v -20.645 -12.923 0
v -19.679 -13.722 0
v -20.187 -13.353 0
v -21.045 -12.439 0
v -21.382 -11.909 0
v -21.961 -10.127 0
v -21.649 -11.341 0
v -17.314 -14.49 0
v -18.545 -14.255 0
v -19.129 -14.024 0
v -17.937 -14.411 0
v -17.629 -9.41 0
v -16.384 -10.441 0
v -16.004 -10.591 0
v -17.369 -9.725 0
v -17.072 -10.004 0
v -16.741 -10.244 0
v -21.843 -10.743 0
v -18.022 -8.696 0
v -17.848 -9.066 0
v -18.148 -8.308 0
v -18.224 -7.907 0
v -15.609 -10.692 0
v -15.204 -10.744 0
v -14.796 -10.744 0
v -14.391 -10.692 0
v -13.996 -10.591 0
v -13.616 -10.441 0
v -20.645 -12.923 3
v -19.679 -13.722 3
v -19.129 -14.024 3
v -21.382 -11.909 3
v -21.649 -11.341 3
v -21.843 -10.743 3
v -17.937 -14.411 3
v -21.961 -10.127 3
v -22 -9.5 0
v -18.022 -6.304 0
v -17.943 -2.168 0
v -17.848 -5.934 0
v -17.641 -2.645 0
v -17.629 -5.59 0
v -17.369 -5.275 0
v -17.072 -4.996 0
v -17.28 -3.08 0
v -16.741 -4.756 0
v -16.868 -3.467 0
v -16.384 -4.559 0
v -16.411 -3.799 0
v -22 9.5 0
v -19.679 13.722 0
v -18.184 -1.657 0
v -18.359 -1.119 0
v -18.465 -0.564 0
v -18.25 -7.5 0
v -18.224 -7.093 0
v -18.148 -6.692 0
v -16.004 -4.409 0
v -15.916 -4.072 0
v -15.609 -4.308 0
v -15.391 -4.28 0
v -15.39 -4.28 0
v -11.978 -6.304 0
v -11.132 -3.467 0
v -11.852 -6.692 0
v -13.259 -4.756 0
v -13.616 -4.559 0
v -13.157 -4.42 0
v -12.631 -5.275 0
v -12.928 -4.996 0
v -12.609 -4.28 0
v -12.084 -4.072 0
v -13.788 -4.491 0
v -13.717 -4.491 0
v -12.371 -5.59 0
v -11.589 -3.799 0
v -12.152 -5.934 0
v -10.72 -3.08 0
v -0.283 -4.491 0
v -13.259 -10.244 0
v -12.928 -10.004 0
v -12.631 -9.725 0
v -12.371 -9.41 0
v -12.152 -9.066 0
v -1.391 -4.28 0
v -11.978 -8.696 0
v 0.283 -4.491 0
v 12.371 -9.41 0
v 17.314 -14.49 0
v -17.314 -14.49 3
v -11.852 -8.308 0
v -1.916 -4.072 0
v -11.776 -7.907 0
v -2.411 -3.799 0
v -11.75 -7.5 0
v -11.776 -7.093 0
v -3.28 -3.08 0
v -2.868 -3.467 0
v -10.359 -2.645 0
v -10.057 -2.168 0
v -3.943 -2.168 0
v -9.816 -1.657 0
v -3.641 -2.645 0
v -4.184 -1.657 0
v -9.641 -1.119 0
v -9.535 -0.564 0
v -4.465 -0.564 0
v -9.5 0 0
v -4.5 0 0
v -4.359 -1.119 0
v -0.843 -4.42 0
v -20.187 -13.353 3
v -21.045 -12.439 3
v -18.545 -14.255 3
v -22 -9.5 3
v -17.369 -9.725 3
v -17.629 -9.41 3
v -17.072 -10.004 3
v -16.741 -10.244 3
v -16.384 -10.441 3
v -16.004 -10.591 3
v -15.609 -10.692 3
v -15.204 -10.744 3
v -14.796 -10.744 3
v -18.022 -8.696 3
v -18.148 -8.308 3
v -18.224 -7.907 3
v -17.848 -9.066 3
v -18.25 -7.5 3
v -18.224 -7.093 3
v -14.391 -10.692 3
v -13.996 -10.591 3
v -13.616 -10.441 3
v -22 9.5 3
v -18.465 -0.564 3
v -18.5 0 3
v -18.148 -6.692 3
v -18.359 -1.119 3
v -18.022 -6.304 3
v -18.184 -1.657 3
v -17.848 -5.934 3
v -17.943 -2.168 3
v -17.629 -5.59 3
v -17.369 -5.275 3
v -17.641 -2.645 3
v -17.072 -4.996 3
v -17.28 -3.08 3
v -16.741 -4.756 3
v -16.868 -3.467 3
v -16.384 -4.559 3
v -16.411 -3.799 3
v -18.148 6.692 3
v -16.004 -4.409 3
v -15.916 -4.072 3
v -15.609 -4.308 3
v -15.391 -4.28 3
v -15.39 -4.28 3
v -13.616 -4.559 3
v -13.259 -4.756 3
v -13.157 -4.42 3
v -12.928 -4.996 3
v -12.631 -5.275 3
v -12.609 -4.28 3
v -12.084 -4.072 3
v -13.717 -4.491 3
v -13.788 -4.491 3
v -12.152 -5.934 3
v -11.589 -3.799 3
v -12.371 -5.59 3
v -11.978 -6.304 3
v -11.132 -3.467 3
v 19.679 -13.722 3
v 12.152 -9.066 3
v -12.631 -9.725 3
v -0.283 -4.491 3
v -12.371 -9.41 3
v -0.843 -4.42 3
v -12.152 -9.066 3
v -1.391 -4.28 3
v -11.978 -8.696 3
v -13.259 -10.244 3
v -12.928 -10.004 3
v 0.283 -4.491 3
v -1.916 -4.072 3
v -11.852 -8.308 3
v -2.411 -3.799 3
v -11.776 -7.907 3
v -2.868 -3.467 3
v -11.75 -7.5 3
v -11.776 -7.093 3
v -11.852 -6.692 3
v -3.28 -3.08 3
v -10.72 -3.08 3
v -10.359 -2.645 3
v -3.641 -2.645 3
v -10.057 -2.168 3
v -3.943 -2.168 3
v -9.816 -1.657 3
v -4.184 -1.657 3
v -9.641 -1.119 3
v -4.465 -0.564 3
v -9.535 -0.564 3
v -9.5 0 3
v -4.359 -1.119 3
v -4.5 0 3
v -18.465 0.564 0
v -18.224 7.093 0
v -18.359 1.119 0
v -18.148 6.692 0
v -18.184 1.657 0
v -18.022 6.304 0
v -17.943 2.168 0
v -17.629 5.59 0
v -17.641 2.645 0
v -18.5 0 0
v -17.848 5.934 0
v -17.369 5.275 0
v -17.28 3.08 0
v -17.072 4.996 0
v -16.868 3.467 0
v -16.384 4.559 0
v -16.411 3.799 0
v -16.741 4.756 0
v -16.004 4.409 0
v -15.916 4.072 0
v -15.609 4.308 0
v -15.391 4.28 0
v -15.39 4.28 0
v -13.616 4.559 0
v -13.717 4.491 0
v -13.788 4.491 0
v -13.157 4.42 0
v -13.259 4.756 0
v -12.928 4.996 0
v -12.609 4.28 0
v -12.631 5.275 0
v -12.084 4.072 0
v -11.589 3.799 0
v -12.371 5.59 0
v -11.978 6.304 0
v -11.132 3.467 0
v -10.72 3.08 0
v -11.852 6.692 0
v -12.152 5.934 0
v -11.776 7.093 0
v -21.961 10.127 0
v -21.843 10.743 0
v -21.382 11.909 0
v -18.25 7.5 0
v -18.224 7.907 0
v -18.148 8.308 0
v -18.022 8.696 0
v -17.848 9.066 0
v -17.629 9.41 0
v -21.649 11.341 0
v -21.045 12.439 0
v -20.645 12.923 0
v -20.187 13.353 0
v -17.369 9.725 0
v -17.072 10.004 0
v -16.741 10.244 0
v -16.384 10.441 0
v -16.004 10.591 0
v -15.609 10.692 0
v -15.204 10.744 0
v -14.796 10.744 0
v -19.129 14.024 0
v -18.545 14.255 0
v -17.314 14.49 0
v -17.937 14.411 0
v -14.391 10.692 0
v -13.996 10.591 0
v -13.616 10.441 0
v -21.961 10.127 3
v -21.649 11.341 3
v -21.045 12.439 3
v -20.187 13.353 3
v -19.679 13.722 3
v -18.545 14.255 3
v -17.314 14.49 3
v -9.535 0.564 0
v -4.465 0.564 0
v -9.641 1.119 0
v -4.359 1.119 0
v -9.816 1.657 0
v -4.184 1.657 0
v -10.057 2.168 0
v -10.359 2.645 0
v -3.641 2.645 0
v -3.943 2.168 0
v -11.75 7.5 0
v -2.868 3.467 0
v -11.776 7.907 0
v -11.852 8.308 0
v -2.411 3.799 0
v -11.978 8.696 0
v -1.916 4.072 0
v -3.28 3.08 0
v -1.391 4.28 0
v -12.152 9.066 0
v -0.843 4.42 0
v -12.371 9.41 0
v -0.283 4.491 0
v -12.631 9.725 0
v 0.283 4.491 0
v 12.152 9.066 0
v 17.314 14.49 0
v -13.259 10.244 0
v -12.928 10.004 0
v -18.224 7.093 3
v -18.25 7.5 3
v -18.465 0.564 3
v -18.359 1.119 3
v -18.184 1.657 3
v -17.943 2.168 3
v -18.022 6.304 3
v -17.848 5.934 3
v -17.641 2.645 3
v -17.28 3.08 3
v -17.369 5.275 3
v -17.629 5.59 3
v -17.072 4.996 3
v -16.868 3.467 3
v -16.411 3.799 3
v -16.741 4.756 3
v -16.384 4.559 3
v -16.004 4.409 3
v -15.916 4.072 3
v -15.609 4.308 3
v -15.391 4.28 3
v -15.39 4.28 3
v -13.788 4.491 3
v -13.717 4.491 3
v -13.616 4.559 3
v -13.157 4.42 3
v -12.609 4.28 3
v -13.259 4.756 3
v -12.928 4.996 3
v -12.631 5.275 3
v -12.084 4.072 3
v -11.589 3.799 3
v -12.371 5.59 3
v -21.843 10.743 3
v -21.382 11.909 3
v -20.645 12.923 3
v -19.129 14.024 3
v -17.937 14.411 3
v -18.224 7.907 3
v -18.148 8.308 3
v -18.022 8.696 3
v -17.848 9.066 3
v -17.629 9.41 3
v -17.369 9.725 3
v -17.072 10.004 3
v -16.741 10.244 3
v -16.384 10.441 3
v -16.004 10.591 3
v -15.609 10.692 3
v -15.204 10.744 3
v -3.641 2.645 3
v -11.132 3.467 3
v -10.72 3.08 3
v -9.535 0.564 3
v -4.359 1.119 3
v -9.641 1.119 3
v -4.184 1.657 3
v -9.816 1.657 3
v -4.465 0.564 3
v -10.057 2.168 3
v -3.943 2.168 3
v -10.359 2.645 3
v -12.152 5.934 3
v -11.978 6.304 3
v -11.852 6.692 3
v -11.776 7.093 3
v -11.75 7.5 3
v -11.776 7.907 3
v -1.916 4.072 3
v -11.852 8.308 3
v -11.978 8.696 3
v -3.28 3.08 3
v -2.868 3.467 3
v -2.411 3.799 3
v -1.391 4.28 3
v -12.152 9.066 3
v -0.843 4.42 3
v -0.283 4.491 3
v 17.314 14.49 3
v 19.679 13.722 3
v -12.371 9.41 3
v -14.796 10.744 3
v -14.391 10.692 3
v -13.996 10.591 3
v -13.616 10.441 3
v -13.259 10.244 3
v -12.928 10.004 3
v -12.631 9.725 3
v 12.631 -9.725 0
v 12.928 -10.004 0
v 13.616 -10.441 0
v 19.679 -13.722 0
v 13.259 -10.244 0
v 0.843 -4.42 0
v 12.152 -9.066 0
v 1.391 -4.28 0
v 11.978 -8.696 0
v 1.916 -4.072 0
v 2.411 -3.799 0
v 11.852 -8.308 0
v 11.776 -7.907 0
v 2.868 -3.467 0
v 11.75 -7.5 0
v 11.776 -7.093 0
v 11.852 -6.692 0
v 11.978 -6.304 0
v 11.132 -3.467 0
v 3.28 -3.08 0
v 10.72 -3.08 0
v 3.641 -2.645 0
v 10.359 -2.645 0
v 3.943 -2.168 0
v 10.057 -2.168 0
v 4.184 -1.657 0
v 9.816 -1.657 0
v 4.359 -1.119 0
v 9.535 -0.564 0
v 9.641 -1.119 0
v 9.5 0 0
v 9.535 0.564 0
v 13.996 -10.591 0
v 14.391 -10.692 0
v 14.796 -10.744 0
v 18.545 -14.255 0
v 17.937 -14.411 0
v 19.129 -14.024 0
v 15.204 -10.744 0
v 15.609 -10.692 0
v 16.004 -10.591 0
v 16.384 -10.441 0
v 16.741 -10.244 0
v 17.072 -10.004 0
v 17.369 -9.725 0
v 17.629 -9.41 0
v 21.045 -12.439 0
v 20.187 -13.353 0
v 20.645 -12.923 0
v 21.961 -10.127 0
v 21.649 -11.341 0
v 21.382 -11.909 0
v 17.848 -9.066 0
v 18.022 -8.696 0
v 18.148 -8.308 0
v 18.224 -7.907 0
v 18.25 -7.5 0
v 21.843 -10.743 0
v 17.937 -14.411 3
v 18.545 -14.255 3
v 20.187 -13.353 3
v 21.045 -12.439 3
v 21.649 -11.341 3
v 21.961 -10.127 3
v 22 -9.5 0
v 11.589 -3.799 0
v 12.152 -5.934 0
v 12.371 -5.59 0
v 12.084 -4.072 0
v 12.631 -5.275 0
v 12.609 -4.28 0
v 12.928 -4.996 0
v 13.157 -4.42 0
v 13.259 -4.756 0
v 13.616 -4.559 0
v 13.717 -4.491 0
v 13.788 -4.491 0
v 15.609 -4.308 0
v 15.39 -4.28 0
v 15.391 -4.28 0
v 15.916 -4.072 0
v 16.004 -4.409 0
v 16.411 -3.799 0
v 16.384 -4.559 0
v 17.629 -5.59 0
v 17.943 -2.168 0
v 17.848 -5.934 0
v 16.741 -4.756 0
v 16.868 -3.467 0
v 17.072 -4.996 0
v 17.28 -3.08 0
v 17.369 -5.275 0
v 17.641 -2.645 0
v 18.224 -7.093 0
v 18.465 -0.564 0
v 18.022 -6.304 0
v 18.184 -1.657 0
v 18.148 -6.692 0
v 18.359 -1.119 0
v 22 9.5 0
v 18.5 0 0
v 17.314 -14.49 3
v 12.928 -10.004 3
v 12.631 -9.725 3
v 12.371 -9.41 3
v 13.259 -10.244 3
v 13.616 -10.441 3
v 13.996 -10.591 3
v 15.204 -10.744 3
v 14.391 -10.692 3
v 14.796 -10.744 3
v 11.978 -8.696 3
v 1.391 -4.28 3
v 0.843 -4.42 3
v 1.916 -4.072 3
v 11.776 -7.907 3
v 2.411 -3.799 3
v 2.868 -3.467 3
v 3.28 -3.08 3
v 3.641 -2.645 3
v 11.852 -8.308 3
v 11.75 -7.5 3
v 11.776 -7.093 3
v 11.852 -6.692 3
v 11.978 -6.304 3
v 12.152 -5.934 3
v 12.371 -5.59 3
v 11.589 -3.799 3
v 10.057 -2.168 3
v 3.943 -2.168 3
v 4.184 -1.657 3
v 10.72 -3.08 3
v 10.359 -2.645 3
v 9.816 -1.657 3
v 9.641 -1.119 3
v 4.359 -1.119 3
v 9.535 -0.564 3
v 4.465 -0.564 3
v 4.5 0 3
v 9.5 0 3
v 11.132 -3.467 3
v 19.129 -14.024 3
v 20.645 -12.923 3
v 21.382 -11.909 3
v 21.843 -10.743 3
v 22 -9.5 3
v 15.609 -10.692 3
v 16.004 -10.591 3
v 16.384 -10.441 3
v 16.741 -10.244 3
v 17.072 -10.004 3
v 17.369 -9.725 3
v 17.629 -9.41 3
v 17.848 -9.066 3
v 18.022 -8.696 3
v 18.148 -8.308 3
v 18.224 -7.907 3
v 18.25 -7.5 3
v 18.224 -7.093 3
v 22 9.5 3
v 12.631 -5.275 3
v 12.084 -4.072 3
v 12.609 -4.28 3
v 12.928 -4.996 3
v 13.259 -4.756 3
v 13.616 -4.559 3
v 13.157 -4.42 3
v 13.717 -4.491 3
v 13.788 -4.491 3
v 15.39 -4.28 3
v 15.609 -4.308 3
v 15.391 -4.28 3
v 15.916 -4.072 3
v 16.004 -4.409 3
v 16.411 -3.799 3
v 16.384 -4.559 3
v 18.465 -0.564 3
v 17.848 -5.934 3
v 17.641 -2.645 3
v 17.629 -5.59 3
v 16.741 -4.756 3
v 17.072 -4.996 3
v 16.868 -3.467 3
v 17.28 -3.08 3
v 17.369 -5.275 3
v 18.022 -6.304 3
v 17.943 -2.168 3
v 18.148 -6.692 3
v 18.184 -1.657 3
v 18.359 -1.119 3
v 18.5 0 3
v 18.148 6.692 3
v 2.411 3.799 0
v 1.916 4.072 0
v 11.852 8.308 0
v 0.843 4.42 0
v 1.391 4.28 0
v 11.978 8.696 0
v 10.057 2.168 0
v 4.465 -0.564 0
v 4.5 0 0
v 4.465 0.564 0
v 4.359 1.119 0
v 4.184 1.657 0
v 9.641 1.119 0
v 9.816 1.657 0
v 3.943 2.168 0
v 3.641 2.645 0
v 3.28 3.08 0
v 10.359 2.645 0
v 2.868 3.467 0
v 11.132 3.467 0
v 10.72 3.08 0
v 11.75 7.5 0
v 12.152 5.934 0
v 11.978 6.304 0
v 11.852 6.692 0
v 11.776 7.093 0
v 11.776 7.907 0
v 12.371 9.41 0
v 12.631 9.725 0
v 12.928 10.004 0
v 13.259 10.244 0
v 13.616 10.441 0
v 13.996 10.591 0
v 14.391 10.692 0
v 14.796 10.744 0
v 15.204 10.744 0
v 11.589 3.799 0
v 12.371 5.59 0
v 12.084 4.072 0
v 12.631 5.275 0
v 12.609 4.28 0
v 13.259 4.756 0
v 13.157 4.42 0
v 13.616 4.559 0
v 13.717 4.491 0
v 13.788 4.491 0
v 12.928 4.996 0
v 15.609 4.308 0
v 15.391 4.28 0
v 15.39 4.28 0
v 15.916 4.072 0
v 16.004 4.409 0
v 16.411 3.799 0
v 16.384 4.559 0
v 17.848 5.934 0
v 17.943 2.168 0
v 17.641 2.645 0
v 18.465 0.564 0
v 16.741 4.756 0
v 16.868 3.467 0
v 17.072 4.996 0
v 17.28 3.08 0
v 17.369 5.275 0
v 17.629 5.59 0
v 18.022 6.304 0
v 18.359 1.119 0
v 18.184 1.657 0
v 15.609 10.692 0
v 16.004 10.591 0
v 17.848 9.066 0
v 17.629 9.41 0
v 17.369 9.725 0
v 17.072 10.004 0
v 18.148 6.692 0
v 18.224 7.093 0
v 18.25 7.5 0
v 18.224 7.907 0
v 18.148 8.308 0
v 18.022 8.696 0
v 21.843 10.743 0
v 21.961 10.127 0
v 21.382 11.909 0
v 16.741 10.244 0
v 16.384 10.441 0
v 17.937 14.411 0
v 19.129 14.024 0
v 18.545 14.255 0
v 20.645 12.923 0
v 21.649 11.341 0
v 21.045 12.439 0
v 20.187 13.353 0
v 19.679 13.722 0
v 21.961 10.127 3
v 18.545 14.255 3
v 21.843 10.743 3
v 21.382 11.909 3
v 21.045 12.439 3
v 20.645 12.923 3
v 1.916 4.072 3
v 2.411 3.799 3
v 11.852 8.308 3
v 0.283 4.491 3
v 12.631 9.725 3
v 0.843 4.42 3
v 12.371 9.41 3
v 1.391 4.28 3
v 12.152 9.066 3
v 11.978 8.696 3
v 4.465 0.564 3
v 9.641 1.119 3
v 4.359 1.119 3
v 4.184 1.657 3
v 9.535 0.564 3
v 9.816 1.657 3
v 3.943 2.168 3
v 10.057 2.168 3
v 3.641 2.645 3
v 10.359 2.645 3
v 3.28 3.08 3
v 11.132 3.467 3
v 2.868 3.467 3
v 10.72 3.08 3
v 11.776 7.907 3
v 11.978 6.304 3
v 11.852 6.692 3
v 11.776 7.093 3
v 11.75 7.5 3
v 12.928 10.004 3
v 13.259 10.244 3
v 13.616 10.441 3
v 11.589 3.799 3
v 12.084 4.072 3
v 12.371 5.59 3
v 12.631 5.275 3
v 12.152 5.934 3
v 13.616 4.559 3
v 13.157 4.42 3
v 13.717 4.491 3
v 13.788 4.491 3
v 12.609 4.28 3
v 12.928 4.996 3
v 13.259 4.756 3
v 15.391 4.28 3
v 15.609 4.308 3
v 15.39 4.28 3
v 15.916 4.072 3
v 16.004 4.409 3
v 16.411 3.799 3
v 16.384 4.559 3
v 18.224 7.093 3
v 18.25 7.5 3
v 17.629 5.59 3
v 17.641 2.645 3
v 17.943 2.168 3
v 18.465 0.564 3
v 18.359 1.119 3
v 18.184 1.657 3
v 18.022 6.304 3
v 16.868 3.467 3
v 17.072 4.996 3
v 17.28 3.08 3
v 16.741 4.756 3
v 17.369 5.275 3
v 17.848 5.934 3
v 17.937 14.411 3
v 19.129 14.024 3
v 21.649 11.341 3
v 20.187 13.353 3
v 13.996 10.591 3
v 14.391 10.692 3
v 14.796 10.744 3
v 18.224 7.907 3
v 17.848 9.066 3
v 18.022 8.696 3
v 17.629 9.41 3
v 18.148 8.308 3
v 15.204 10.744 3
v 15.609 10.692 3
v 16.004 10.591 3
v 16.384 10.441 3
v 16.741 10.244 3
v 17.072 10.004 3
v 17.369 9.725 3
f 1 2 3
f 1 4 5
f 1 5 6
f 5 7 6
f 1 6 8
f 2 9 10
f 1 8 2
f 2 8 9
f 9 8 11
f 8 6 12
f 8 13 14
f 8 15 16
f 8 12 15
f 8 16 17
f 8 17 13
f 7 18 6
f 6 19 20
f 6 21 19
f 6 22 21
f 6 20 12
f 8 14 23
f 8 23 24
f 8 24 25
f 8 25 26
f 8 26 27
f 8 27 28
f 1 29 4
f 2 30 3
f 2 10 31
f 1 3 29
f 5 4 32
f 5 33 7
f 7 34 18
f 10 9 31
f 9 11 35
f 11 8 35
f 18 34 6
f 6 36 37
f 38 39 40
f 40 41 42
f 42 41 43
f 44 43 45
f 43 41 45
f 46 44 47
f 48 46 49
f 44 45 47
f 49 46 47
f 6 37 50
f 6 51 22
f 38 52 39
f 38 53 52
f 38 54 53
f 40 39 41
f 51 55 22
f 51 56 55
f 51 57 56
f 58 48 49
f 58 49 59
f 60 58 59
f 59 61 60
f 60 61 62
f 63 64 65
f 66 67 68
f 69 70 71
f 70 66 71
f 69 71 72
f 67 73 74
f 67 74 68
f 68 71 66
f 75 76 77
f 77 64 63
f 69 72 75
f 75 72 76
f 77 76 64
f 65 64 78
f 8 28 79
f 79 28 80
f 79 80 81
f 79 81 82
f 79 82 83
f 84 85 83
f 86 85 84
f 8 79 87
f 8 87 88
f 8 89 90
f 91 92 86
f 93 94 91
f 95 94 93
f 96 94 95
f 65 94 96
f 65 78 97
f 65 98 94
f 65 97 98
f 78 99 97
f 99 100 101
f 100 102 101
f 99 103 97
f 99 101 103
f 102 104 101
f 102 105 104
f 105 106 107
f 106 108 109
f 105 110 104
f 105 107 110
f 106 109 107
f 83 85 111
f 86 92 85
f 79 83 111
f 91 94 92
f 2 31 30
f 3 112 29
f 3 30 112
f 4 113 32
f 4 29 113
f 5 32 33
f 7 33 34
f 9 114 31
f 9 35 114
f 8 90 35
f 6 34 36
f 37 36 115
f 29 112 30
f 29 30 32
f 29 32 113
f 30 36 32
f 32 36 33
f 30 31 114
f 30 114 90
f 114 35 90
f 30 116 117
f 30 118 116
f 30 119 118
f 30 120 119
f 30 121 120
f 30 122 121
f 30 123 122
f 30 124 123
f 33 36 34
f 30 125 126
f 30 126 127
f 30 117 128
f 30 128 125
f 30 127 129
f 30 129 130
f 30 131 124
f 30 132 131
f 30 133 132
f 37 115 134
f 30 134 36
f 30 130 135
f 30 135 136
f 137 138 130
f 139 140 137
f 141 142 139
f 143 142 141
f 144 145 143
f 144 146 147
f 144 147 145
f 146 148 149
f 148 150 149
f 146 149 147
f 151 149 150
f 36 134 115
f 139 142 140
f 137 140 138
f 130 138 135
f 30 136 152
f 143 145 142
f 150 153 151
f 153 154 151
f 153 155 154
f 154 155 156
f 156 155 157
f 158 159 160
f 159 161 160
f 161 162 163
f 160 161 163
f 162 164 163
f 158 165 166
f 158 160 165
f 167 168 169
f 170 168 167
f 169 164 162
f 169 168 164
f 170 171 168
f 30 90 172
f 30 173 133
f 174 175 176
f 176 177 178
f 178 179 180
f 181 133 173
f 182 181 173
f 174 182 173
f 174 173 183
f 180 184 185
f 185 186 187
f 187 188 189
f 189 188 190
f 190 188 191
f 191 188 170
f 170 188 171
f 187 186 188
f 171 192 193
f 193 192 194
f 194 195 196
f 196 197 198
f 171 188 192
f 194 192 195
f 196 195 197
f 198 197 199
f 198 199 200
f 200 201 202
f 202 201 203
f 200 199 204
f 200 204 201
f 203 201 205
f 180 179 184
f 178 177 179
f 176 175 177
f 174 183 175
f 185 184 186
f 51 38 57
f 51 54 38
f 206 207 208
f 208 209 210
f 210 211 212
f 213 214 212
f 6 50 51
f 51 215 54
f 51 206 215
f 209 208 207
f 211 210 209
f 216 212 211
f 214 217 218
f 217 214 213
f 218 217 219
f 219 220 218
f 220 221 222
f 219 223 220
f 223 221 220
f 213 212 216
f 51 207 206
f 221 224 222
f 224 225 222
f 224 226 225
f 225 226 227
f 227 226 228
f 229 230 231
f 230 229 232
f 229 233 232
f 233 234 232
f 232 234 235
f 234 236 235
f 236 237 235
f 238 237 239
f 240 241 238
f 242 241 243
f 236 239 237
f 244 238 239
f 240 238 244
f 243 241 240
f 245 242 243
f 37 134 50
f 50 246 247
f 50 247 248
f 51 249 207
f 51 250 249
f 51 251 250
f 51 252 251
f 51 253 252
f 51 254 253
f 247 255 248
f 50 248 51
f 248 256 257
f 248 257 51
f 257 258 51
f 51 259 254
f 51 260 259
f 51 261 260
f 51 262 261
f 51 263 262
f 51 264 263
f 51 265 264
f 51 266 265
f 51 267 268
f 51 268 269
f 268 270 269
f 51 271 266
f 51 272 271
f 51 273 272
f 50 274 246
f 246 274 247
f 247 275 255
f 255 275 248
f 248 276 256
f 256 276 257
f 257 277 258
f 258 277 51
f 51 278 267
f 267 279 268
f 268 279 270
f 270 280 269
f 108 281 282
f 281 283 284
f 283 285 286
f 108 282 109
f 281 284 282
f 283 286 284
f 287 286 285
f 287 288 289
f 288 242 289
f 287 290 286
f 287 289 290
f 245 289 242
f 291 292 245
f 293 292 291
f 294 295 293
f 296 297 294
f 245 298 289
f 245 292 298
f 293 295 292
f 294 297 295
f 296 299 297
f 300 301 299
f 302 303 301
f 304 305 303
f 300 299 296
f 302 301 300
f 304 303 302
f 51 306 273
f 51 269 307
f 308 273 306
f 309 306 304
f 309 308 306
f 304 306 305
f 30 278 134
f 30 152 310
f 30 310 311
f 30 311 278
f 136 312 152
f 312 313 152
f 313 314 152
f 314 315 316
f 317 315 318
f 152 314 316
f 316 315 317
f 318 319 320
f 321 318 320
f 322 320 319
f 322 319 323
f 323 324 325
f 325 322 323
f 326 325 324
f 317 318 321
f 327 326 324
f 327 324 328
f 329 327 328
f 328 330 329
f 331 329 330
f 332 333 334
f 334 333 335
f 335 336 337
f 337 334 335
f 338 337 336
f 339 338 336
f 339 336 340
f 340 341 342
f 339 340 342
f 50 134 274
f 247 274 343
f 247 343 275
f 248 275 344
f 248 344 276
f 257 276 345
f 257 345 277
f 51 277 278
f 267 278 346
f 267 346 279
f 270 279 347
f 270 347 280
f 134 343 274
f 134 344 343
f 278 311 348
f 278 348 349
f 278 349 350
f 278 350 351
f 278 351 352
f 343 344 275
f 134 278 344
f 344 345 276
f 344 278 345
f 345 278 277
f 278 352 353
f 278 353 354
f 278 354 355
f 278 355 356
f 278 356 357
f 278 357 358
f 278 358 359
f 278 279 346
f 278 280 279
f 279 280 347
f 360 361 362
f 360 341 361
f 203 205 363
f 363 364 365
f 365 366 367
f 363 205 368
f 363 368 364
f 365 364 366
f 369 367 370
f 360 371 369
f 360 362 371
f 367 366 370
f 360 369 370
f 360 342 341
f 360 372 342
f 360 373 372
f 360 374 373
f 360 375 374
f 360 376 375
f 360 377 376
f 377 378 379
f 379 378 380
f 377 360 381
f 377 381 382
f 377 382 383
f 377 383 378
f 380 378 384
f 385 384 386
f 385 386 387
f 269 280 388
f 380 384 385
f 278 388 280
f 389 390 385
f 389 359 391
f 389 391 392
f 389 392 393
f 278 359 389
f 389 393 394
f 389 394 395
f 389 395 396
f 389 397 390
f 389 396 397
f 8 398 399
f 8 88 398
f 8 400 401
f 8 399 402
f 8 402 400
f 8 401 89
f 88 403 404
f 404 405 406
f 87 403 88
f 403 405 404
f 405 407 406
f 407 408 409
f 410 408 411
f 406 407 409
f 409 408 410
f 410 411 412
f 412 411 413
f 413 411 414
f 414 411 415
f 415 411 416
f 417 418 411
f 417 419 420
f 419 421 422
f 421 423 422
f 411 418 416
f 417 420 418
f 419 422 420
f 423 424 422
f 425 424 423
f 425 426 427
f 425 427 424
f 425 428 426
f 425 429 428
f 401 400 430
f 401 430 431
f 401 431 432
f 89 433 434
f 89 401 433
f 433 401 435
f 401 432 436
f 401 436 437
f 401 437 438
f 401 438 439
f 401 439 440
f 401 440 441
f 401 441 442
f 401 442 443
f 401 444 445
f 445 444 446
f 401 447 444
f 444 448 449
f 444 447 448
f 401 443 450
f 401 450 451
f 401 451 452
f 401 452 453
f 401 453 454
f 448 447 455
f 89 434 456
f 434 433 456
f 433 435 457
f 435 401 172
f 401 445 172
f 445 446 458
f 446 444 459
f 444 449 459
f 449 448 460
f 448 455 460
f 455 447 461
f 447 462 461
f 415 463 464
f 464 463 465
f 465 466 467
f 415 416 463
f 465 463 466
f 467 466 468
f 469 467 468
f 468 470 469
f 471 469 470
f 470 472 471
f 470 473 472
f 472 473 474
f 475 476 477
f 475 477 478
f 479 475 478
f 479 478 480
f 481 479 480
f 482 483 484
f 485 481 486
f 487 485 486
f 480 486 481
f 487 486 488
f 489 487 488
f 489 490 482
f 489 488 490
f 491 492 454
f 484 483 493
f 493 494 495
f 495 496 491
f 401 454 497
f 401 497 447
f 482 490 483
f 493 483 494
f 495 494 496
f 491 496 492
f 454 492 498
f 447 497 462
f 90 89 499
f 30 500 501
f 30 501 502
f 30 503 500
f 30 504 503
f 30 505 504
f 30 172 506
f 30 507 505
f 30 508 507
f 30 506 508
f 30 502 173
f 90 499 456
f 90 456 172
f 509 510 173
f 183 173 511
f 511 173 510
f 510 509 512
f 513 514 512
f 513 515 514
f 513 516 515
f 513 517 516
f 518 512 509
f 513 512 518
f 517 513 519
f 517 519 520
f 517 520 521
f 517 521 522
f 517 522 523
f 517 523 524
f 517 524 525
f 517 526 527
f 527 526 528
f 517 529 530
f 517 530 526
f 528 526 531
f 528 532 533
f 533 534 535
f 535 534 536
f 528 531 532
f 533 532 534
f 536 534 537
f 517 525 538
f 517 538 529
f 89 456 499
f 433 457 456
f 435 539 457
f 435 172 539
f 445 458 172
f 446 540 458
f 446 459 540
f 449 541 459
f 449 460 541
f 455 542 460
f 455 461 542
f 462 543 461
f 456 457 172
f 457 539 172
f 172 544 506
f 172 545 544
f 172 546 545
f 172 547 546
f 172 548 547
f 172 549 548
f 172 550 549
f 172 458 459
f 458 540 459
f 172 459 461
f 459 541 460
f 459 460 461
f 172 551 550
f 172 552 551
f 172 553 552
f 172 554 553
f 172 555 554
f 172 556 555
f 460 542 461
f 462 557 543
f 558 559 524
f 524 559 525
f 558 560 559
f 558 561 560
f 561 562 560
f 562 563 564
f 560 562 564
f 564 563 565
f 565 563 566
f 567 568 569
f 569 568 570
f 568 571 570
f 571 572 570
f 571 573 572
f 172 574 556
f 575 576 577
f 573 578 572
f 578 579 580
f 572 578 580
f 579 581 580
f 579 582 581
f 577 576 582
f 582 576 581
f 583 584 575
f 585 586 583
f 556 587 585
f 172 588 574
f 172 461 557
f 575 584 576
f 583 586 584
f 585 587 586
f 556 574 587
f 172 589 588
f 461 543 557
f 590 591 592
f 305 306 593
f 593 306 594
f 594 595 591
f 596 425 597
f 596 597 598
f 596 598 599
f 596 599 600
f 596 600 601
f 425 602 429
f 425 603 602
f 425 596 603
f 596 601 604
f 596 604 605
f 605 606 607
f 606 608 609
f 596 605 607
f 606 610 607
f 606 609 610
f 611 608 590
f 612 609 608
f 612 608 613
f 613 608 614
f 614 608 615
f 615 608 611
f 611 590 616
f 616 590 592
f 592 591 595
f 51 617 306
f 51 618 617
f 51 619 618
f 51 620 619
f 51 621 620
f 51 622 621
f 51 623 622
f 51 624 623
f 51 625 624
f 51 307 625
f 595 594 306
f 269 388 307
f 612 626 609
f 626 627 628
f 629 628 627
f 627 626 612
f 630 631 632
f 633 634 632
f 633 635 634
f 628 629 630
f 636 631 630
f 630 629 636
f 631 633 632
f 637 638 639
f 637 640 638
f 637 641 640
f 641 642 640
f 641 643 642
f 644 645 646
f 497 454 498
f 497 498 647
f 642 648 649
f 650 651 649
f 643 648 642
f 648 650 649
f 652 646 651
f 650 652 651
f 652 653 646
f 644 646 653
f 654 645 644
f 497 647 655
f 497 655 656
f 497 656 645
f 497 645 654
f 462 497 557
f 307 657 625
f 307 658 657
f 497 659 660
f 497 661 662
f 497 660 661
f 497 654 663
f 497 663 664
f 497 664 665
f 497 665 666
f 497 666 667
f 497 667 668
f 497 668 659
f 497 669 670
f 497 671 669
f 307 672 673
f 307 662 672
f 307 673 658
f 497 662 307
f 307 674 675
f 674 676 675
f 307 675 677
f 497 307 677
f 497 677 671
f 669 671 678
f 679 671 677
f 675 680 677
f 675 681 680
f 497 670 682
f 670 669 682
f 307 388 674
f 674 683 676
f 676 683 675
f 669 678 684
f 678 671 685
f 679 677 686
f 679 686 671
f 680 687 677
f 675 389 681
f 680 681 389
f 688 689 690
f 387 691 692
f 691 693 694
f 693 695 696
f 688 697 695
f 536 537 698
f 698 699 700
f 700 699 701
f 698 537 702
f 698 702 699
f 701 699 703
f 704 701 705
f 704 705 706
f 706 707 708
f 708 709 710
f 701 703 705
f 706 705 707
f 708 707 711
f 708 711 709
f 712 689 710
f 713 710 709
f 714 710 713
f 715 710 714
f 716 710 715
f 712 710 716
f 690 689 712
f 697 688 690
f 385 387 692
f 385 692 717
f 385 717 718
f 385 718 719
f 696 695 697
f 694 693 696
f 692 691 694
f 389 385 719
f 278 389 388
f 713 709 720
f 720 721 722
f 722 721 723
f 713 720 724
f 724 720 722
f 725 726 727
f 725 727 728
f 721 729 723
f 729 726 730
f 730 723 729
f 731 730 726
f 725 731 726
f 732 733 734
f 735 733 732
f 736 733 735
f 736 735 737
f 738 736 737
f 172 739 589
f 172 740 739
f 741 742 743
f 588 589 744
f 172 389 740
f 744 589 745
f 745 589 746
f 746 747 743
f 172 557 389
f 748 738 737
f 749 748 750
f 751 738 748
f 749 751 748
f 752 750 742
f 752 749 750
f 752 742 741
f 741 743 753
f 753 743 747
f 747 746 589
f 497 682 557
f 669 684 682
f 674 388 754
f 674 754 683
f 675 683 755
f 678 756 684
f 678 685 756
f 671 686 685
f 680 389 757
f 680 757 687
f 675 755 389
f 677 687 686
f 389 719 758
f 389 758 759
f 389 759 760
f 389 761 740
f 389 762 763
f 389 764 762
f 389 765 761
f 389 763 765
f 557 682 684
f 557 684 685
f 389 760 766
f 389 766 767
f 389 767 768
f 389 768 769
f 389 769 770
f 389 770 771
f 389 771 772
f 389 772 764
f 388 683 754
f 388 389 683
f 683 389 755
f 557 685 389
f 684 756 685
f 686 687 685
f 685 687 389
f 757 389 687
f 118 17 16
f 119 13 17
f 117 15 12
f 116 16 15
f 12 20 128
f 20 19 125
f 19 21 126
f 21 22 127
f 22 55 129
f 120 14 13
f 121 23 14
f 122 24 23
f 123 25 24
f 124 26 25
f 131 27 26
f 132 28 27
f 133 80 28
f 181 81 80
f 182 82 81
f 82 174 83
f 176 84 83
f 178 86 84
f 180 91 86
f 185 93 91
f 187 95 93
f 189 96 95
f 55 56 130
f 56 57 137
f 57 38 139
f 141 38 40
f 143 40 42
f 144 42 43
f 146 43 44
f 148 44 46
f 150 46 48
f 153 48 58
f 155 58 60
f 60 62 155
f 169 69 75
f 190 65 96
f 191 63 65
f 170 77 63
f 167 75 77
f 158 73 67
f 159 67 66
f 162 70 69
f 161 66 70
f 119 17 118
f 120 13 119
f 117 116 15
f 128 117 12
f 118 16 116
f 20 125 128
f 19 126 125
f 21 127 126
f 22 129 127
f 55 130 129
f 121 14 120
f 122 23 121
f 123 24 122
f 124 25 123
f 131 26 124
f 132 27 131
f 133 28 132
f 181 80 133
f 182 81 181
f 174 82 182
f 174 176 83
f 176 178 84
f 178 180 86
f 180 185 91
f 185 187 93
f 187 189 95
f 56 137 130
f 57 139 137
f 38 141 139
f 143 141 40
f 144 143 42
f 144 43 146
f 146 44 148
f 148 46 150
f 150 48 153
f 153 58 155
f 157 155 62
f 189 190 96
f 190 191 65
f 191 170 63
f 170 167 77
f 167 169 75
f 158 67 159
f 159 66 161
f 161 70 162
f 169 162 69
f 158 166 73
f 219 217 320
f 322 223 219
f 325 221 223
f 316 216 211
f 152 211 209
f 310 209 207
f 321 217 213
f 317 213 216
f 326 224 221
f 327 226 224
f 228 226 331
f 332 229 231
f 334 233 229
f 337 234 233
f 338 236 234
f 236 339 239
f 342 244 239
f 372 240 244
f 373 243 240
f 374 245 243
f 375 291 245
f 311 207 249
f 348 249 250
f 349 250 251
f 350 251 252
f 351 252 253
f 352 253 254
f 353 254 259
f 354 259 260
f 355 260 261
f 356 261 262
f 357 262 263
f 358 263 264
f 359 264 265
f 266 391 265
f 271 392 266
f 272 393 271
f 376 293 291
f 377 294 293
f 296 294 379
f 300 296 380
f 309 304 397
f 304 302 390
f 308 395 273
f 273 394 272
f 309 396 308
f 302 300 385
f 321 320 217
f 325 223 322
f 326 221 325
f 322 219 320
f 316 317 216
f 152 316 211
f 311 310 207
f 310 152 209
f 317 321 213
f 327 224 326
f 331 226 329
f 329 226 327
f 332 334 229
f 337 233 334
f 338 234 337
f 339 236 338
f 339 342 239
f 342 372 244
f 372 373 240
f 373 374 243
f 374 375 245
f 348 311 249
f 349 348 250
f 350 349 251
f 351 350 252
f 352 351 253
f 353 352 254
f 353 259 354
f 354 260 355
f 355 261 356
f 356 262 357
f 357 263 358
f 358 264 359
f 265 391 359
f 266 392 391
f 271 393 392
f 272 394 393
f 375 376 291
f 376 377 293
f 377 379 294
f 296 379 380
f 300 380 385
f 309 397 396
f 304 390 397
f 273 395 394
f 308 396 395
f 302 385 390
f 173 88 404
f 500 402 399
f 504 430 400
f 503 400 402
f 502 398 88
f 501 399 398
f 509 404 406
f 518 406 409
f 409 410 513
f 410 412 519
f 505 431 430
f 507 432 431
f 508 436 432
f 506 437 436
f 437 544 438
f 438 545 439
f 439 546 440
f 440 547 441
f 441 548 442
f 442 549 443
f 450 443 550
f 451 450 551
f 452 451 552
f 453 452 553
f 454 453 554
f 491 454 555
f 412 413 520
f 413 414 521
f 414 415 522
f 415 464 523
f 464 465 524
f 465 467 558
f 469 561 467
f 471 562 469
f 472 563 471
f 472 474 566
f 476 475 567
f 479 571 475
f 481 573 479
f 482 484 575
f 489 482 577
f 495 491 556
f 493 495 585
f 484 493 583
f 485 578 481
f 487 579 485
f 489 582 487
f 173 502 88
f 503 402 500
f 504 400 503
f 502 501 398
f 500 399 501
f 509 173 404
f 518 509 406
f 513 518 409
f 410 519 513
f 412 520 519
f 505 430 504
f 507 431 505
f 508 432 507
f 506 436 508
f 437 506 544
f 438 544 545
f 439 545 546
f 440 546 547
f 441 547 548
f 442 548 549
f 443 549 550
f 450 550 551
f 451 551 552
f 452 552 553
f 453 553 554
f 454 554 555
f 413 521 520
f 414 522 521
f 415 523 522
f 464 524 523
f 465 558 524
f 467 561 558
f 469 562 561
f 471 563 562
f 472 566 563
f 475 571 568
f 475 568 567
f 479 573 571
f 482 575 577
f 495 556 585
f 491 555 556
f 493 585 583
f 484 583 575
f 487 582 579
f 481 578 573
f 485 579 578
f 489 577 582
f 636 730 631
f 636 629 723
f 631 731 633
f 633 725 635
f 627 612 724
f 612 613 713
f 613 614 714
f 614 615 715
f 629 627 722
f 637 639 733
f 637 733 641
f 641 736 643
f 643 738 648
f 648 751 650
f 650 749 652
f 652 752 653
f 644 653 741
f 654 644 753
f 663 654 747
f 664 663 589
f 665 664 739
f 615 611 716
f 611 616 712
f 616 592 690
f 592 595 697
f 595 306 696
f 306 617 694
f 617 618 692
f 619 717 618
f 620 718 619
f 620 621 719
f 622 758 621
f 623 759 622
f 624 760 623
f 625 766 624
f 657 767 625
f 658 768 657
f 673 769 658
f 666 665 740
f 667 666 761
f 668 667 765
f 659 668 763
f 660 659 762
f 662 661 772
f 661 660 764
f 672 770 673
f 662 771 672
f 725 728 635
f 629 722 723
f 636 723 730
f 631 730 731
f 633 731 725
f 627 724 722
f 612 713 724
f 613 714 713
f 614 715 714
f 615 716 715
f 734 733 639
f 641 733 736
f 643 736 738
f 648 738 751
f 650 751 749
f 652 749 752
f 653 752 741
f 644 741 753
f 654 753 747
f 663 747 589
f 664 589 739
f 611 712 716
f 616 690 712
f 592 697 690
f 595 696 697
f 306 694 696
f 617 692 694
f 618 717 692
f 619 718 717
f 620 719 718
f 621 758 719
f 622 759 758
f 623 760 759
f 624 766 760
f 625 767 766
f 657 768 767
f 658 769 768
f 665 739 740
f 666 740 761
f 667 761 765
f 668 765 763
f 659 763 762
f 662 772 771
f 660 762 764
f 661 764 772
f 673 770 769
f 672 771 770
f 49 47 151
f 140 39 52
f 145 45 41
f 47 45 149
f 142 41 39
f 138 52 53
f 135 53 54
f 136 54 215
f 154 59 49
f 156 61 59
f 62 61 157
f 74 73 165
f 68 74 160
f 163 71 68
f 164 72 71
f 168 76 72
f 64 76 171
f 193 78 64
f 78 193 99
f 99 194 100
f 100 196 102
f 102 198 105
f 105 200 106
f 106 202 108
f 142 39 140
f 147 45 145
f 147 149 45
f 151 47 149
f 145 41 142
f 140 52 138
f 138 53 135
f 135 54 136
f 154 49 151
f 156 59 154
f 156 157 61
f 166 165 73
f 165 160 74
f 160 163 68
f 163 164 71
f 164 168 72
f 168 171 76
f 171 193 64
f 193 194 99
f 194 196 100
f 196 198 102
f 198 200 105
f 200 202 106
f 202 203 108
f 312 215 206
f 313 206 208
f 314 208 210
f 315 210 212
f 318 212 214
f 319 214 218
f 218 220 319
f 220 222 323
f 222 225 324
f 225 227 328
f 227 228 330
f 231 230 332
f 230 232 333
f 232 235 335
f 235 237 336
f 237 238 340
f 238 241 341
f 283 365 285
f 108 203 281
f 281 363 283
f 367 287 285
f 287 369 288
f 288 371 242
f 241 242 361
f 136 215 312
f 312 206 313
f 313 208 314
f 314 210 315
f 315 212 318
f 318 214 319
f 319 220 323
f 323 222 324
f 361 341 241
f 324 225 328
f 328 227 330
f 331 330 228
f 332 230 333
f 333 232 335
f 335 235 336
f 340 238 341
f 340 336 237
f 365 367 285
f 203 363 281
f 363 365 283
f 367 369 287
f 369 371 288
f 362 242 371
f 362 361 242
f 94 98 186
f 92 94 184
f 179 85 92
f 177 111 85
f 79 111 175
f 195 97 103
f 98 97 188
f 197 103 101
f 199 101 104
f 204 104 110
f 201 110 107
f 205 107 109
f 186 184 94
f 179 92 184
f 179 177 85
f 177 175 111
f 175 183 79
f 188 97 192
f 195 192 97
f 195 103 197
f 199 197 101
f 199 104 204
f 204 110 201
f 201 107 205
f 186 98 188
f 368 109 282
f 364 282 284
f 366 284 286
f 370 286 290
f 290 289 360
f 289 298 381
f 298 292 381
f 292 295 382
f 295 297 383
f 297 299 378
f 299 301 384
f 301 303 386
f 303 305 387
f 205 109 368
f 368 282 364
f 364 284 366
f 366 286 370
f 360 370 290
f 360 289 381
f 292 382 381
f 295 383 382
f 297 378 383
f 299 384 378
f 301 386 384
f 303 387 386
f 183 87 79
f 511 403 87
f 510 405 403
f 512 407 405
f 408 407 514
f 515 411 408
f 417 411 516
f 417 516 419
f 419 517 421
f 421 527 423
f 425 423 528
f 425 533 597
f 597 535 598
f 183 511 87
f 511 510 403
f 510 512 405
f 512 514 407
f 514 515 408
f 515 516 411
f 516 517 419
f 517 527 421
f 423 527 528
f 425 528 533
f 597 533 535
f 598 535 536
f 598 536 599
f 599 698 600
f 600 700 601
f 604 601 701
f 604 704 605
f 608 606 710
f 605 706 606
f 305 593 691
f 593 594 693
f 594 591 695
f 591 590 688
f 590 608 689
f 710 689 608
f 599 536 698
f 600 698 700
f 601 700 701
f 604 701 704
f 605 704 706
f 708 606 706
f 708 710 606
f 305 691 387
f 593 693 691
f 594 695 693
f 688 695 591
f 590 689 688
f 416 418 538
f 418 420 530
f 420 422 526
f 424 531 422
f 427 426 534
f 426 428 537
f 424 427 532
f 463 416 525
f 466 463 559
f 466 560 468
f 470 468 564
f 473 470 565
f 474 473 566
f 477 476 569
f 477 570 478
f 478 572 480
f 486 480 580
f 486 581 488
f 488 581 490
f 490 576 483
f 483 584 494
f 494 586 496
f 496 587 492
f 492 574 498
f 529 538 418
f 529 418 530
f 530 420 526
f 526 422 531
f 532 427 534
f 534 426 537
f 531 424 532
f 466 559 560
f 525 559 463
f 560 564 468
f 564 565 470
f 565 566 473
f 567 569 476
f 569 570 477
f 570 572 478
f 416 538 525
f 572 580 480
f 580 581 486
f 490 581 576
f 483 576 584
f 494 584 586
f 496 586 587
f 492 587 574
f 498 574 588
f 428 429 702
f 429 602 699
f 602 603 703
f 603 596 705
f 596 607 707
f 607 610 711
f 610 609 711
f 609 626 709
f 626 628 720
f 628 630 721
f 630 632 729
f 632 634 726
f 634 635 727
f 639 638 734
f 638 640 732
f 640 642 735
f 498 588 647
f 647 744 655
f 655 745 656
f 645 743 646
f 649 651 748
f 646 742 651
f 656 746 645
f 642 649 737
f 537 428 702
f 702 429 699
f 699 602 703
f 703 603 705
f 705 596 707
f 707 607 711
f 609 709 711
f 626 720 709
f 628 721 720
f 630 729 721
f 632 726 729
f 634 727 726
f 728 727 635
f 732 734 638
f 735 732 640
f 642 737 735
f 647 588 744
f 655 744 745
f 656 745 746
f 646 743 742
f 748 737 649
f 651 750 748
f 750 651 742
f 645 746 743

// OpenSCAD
$fn = 50;

difference() {
	union() {
		hull() {
			translate(v = [-17.0, 9.5, 0]) {
				cylinder(h = 3, r = 5);
			}
			translate(v = [17.0, 9.5, 0]) {
				cylinder(h = 3, r = 5);
			}
			translate(v = [-17.0, -9.5, 0]) {
				cylinder(h = 3, r = 5);
			}
			translate(v = [17.0, -9.5, 0]) {
				cylinder(h = 3, r = 5);
			}
		}
	}
	union() {
		translate(v = [-15.0, -7.5, -100.0]) {
			cylinder(h = 200, r = 3.25);
		}
		translate(v = [-15.0, 7.5, -100.0]) {
			cylinder(h = 200, r = 3.25);
		}
		translate(v = [15.0, -7.5, -100.0]) {
			cylinder(h = 200, r = 3.25);
		}
		translate(v = [15.0, 7.5, -100.0]) {
			cylinder(h = 200, r = 3.25);
		}
		translate(v = [-15.0, -7.5, -100.0]) {
			cylinder(h = 200, r = 1.8);
		}
		translate(v = [-15.0, 7.5, -100.0]) {
			cylinder(h = 200, r = 1.8);
		}
		translate(v = [15.0, -7.5, -100.0]) {
			cylinder(h = 200, r = 1.8);
		}
		translate(v = [15.0, 7.5, -100.0]) {
			cylinder(h = 200, r = 1.8);
		}
		translate(v = [-14.0, 0, 0.0]) {
			cylinder(h = 3, r = 4.5);
		}
		cylinder(h = 3, r = 4.5);
		translate(v = [14.0, 0, 0.0]) {
			cylinder(h = 3, r = 4.5);
		}
	}
}
